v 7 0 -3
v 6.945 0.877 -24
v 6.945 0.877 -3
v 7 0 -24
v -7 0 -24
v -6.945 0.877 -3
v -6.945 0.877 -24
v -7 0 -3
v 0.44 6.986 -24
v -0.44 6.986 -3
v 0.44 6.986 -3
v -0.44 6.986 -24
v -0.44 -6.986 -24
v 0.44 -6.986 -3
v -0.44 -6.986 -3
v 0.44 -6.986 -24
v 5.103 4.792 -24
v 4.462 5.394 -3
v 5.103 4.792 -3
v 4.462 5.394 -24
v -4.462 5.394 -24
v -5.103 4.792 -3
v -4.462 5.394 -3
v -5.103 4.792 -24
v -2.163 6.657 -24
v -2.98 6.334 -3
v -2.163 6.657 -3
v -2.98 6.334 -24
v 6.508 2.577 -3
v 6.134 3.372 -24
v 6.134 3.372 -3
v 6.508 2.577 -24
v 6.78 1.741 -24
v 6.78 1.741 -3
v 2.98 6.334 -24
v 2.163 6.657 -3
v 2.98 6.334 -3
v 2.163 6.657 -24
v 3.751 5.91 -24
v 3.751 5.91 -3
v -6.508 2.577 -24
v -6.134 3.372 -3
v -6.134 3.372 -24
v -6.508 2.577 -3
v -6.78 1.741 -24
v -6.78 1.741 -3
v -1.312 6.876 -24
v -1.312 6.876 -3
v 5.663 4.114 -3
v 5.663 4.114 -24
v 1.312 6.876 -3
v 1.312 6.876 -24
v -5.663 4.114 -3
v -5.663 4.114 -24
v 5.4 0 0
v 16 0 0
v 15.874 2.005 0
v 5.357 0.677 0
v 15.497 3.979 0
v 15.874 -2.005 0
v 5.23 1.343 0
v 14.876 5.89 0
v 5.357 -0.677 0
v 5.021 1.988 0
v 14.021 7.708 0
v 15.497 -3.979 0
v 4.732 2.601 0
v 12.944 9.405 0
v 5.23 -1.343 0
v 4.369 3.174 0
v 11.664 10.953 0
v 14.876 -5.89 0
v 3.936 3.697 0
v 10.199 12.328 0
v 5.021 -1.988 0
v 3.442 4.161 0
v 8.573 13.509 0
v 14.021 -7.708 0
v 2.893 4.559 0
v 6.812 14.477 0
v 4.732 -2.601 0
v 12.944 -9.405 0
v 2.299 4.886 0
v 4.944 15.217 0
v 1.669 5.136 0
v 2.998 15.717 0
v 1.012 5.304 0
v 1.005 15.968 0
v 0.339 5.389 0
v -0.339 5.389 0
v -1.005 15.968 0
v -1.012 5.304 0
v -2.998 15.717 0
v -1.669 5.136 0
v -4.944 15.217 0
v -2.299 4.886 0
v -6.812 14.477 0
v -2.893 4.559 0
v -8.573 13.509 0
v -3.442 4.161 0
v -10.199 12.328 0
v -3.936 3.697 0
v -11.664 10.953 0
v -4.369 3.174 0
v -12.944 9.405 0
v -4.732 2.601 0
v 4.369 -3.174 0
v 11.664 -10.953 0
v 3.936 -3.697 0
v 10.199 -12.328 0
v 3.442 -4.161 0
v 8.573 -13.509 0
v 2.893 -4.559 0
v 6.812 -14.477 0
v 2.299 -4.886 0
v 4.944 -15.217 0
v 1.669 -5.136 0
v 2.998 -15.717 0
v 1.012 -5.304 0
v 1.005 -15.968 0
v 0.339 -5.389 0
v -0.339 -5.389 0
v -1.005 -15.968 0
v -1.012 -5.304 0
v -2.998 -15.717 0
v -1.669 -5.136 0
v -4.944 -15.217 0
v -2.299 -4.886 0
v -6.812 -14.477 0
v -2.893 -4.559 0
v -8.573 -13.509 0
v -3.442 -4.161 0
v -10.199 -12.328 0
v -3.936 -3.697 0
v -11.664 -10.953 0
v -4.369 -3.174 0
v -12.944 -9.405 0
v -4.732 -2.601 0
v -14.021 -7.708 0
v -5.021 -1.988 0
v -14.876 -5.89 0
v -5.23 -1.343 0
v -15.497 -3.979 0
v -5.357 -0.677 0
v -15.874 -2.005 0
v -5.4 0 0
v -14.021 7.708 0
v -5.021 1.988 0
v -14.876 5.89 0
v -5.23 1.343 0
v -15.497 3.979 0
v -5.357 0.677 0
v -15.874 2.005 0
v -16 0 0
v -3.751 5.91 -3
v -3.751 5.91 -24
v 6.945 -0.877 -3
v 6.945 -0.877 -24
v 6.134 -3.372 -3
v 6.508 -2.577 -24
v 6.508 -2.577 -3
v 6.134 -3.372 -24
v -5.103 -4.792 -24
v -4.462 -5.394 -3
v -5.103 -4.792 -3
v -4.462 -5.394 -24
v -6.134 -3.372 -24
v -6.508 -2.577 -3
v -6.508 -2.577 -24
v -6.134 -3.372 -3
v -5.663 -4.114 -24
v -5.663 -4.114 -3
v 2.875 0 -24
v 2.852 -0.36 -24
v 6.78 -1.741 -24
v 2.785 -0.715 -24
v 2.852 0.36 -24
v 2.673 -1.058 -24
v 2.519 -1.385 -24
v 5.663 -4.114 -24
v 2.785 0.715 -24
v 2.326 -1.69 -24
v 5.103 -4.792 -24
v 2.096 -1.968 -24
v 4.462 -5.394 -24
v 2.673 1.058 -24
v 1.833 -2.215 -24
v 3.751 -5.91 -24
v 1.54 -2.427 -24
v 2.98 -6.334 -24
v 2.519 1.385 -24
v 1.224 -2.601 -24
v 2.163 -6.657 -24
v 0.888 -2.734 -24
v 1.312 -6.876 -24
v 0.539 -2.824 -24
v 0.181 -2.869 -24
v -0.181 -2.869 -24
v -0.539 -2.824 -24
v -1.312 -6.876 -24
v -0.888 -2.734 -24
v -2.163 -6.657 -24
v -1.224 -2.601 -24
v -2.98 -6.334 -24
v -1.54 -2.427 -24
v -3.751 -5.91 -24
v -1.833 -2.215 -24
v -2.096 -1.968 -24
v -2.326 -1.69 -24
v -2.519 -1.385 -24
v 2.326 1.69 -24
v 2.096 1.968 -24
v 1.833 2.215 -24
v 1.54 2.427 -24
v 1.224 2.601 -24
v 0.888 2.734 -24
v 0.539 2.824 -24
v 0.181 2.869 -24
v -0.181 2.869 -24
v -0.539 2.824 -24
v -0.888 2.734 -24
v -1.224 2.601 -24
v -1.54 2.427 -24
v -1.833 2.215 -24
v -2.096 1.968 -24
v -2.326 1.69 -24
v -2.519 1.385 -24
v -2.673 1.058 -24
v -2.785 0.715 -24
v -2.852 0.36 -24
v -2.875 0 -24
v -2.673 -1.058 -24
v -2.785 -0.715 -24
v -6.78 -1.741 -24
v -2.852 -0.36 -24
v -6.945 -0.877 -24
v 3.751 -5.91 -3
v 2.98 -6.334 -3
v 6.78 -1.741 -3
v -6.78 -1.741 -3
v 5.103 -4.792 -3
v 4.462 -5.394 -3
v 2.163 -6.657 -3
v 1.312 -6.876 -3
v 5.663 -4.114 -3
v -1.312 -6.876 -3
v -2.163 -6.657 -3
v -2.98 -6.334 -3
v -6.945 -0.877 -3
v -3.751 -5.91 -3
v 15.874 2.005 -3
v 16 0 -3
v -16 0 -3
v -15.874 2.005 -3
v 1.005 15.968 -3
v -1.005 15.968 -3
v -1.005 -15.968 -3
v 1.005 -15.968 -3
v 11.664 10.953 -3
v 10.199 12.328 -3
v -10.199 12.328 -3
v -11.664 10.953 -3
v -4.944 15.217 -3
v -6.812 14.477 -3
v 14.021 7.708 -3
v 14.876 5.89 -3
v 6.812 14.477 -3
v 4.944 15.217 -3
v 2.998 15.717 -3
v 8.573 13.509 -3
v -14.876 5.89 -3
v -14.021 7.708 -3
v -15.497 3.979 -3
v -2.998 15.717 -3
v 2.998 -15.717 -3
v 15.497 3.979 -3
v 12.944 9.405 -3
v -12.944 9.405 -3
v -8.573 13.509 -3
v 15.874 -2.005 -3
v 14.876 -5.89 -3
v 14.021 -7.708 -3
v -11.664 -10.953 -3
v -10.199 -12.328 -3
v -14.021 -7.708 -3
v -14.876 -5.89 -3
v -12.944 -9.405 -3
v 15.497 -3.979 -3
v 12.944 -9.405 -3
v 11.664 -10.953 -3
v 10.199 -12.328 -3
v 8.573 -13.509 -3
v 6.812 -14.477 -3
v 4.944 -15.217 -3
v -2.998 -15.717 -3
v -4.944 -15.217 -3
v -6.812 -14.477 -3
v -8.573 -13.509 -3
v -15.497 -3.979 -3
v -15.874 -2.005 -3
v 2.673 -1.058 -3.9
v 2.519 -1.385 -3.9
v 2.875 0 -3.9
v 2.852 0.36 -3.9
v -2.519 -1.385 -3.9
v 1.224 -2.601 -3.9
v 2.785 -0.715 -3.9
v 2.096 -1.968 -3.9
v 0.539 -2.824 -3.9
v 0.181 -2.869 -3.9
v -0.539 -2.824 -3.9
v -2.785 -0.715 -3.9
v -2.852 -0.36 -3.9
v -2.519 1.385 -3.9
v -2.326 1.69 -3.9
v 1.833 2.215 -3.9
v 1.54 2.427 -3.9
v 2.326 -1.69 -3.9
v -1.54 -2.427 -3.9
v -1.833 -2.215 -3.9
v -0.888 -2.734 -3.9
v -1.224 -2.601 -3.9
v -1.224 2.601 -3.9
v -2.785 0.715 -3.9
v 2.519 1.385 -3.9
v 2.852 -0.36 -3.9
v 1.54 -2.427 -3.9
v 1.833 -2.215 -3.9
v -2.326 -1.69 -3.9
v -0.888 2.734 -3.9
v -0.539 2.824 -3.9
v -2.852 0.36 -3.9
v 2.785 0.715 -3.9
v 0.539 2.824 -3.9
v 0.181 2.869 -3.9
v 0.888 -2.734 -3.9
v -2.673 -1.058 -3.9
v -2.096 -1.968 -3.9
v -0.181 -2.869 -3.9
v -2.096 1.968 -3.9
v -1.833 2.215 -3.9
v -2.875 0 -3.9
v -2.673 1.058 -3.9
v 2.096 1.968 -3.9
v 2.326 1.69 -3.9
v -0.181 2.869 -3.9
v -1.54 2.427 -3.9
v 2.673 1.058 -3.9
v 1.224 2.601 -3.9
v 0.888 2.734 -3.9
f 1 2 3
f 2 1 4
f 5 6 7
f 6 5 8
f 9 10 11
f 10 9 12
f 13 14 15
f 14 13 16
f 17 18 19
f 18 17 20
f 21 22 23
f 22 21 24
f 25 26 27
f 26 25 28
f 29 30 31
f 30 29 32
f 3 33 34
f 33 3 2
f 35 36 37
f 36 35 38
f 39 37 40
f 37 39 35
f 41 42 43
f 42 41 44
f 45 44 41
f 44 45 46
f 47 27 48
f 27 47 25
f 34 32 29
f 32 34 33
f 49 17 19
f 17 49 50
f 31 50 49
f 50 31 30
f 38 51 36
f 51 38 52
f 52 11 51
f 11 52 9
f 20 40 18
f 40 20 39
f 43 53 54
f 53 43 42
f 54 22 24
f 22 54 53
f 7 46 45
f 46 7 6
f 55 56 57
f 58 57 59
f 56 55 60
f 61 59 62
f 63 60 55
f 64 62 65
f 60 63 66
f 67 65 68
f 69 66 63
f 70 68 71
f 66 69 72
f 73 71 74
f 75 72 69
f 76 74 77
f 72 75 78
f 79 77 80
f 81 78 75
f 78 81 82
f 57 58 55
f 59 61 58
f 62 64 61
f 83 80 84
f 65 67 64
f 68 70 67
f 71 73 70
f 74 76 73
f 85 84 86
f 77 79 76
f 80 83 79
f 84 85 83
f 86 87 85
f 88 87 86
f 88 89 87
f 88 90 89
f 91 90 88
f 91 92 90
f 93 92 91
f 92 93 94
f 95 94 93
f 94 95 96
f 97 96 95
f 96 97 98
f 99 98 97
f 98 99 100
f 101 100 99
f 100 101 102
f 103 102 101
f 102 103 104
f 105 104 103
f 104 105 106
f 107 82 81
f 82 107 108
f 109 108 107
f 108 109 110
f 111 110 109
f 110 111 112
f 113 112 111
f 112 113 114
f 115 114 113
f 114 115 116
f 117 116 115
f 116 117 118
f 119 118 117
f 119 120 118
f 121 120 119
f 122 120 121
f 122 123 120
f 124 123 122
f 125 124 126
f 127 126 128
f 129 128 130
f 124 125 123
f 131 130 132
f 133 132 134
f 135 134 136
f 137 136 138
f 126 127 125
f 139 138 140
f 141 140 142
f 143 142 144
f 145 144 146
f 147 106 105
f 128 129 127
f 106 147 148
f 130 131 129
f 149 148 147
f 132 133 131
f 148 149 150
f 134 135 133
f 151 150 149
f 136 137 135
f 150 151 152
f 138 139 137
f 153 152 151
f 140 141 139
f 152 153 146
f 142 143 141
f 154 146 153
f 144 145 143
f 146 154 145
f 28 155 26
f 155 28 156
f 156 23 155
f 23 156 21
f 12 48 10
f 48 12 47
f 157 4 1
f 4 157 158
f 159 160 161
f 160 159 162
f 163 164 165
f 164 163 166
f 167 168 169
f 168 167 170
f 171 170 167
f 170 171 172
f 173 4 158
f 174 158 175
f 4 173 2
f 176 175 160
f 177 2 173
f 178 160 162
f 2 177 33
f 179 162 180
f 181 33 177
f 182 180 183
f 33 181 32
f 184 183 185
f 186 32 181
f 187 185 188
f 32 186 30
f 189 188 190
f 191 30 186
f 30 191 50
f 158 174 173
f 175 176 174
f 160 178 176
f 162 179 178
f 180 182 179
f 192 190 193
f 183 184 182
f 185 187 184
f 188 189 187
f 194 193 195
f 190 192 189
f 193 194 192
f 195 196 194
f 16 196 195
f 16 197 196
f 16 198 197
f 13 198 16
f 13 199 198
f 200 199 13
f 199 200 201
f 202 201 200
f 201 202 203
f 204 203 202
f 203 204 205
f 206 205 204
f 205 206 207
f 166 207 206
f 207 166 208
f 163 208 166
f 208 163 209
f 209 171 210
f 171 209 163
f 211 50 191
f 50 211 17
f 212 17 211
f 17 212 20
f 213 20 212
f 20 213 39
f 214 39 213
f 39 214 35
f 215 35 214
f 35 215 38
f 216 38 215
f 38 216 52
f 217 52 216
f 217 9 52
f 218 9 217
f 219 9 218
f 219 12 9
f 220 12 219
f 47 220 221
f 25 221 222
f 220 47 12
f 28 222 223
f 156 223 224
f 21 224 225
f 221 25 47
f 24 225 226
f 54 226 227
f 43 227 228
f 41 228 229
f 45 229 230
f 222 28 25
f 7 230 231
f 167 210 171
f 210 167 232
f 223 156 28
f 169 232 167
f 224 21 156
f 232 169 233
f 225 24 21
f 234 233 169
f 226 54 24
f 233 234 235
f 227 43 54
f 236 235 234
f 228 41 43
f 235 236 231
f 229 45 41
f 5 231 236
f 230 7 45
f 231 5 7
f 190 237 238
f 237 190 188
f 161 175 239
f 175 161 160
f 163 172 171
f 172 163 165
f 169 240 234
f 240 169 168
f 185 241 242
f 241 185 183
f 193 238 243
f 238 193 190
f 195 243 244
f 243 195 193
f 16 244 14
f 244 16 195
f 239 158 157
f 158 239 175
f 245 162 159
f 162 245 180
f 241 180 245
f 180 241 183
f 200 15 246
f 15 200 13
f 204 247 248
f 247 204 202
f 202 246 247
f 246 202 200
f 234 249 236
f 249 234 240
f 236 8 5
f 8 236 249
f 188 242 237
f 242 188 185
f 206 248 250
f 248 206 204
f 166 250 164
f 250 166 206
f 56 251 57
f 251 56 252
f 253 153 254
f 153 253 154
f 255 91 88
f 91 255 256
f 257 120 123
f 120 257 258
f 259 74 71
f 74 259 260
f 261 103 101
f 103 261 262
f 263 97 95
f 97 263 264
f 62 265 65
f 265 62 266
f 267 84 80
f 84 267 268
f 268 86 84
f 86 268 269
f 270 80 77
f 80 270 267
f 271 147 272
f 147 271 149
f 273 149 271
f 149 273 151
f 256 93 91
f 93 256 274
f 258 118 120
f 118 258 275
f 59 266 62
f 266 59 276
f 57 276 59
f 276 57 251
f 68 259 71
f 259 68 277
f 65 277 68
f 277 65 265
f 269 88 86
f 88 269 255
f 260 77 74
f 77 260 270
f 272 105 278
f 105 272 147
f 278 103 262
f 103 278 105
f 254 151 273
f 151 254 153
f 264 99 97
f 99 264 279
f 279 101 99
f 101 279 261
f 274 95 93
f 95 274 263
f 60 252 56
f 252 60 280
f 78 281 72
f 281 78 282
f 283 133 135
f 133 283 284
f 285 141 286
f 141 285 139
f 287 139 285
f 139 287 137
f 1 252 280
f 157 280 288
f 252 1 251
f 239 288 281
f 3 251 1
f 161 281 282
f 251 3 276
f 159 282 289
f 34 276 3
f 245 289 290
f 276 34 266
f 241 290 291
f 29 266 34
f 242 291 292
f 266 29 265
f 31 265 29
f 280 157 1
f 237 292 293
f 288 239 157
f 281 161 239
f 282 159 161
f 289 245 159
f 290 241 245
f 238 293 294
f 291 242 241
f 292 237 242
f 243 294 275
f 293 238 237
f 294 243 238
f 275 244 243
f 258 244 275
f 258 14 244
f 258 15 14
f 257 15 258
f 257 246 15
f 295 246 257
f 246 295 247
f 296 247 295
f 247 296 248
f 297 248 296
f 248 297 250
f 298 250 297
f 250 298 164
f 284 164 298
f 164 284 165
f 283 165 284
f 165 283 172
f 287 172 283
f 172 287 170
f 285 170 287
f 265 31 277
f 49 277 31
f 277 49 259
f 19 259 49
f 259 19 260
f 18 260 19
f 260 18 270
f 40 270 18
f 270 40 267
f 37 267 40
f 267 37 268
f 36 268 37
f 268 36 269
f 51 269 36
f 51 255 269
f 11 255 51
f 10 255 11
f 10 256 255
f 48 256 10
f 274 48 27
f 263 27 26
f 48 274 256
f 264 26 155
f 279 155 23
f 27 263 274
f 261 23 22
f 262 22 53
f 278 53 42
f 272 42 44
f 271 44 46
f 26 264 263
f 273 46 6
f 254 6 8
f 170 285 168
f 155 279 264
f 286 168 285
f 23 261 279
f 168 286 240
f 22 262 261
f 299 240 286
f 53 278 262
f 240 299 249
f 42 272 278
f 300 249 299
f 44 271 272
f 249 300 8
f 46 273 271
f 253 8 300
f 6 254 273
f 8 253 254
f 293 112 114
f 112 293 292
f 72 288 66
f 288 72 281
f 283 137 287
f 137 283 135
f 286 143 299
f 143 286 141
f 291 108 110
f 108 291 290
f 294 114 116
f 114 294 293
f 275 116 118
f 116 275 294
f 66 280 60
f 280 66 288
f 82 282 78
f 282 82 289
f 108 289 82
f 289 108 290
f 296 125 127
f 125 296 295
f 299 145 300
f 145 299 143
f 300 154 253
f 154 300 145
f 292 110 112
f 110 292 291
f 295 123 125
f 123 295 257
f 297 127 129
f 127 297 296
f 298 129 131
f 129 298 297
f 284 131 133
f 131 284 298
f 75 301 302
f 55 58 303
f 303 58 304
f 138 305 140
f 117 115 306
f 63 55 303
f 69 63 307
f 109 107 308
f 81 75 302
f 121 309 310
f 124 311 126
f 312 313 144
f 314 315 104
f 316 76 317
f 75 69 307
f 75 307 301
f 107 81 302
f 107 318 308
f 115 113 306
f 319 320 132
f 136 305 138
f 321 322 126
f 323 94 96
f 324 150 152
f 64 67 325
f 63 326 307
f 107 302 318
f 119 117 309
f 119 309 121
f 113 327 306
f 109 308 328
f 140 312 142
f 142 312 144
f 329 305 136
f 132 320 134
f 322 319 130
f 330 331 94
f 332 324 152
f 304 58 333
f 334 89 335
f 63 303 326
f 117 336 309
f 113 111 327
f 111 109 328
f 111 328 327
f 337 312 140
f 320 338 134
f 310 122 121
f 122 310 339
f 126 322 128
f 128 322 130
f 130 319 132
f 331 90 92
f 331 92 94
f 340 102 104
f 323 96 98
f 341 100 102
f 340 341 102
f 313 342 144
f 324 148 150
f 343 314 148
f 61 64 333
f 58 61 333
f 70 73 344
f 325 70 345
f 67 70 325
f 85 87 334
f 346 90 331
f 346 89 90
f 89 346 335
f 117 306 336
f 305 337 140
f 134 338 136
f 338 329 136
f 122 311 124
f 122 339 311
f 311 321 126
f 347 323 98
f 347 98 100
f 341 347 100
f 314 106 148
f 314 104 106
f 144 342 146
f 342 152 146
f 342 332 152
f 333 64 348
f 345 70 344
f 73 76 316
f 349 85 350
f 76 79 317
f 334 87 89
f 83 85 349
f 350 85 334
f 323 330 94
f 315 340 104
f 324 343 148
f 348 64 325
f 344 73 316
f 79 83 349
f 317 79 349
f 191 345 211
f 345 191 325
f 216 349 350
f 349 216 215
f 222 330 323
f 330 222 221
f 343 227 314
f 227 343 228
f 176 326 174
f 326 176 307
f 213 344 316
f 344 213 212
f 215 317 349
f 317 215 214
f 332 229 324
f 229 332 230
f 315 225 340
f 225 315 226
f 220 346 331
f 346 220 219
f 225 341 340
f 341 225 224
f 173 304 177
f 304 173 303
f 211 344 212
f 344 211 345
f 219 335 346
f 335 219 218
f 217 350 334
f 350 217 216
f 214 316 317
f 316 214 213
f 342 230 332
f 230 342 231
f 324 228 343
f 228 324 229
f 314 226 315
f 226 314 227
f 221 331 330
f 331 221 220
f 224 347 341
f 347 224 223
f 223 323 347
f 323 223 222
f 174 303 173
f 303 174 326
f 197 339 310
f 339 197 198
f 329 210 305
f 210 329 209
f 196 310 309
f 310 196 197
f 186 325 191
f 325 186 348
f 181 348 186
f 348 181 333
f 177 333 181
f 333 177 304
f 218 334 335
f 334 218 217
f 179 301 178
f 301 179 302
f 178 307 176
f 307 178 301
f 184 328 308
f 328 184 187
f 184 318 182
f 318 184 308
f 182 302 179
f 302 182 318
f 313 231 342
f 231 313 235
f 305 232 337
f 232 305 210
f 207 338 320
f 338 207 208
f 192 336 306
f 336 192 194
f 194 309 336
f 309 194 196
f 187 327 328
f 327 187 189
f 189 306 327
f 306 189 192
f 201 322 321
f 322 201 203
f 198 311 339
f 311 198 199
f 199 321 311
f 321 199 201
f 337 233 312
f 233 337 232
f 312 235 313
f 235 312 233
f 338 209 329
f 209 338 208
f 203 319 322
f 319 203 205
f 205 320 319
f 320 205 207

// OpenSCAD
$fn = 50;


difference() {
	union() {
		translate(v = [0, 0, -24.0000000000]) {
			cylinder(h = 24, r = 7.0000000000);
		}
		translate(v = [0, 0, -3.0000000000]) {
			cylinder(h = 3, r = 16.0000000000);
		}
	}
	union() {
		translate(v = [0, 0, 0]) {
			rotate(a = [0, 0, 0]) {
				difference() {
					union() {
						#translate(v = [0, 0, -24.0000000000]) {
							cylinder(h = 24, r = 2.6000000000);
						}
						#translate(v = [0, 0, -3.9000000000]) {
							cylinder(h = 3.9000000000, r1 = 2.8750000000, r2 = 5.4000000000);
						}
						#translate(v = [0, 0, -24.0000000000]) {
							cylinder(h = 24, r = 2.8750000000);
						}
						#translate(v = [0, 0, -24.0000000000]) {
							cylinder(h = 24, r = 2.6000000000);
						}
					}
					union();
				}
			}
		}
	}
}
